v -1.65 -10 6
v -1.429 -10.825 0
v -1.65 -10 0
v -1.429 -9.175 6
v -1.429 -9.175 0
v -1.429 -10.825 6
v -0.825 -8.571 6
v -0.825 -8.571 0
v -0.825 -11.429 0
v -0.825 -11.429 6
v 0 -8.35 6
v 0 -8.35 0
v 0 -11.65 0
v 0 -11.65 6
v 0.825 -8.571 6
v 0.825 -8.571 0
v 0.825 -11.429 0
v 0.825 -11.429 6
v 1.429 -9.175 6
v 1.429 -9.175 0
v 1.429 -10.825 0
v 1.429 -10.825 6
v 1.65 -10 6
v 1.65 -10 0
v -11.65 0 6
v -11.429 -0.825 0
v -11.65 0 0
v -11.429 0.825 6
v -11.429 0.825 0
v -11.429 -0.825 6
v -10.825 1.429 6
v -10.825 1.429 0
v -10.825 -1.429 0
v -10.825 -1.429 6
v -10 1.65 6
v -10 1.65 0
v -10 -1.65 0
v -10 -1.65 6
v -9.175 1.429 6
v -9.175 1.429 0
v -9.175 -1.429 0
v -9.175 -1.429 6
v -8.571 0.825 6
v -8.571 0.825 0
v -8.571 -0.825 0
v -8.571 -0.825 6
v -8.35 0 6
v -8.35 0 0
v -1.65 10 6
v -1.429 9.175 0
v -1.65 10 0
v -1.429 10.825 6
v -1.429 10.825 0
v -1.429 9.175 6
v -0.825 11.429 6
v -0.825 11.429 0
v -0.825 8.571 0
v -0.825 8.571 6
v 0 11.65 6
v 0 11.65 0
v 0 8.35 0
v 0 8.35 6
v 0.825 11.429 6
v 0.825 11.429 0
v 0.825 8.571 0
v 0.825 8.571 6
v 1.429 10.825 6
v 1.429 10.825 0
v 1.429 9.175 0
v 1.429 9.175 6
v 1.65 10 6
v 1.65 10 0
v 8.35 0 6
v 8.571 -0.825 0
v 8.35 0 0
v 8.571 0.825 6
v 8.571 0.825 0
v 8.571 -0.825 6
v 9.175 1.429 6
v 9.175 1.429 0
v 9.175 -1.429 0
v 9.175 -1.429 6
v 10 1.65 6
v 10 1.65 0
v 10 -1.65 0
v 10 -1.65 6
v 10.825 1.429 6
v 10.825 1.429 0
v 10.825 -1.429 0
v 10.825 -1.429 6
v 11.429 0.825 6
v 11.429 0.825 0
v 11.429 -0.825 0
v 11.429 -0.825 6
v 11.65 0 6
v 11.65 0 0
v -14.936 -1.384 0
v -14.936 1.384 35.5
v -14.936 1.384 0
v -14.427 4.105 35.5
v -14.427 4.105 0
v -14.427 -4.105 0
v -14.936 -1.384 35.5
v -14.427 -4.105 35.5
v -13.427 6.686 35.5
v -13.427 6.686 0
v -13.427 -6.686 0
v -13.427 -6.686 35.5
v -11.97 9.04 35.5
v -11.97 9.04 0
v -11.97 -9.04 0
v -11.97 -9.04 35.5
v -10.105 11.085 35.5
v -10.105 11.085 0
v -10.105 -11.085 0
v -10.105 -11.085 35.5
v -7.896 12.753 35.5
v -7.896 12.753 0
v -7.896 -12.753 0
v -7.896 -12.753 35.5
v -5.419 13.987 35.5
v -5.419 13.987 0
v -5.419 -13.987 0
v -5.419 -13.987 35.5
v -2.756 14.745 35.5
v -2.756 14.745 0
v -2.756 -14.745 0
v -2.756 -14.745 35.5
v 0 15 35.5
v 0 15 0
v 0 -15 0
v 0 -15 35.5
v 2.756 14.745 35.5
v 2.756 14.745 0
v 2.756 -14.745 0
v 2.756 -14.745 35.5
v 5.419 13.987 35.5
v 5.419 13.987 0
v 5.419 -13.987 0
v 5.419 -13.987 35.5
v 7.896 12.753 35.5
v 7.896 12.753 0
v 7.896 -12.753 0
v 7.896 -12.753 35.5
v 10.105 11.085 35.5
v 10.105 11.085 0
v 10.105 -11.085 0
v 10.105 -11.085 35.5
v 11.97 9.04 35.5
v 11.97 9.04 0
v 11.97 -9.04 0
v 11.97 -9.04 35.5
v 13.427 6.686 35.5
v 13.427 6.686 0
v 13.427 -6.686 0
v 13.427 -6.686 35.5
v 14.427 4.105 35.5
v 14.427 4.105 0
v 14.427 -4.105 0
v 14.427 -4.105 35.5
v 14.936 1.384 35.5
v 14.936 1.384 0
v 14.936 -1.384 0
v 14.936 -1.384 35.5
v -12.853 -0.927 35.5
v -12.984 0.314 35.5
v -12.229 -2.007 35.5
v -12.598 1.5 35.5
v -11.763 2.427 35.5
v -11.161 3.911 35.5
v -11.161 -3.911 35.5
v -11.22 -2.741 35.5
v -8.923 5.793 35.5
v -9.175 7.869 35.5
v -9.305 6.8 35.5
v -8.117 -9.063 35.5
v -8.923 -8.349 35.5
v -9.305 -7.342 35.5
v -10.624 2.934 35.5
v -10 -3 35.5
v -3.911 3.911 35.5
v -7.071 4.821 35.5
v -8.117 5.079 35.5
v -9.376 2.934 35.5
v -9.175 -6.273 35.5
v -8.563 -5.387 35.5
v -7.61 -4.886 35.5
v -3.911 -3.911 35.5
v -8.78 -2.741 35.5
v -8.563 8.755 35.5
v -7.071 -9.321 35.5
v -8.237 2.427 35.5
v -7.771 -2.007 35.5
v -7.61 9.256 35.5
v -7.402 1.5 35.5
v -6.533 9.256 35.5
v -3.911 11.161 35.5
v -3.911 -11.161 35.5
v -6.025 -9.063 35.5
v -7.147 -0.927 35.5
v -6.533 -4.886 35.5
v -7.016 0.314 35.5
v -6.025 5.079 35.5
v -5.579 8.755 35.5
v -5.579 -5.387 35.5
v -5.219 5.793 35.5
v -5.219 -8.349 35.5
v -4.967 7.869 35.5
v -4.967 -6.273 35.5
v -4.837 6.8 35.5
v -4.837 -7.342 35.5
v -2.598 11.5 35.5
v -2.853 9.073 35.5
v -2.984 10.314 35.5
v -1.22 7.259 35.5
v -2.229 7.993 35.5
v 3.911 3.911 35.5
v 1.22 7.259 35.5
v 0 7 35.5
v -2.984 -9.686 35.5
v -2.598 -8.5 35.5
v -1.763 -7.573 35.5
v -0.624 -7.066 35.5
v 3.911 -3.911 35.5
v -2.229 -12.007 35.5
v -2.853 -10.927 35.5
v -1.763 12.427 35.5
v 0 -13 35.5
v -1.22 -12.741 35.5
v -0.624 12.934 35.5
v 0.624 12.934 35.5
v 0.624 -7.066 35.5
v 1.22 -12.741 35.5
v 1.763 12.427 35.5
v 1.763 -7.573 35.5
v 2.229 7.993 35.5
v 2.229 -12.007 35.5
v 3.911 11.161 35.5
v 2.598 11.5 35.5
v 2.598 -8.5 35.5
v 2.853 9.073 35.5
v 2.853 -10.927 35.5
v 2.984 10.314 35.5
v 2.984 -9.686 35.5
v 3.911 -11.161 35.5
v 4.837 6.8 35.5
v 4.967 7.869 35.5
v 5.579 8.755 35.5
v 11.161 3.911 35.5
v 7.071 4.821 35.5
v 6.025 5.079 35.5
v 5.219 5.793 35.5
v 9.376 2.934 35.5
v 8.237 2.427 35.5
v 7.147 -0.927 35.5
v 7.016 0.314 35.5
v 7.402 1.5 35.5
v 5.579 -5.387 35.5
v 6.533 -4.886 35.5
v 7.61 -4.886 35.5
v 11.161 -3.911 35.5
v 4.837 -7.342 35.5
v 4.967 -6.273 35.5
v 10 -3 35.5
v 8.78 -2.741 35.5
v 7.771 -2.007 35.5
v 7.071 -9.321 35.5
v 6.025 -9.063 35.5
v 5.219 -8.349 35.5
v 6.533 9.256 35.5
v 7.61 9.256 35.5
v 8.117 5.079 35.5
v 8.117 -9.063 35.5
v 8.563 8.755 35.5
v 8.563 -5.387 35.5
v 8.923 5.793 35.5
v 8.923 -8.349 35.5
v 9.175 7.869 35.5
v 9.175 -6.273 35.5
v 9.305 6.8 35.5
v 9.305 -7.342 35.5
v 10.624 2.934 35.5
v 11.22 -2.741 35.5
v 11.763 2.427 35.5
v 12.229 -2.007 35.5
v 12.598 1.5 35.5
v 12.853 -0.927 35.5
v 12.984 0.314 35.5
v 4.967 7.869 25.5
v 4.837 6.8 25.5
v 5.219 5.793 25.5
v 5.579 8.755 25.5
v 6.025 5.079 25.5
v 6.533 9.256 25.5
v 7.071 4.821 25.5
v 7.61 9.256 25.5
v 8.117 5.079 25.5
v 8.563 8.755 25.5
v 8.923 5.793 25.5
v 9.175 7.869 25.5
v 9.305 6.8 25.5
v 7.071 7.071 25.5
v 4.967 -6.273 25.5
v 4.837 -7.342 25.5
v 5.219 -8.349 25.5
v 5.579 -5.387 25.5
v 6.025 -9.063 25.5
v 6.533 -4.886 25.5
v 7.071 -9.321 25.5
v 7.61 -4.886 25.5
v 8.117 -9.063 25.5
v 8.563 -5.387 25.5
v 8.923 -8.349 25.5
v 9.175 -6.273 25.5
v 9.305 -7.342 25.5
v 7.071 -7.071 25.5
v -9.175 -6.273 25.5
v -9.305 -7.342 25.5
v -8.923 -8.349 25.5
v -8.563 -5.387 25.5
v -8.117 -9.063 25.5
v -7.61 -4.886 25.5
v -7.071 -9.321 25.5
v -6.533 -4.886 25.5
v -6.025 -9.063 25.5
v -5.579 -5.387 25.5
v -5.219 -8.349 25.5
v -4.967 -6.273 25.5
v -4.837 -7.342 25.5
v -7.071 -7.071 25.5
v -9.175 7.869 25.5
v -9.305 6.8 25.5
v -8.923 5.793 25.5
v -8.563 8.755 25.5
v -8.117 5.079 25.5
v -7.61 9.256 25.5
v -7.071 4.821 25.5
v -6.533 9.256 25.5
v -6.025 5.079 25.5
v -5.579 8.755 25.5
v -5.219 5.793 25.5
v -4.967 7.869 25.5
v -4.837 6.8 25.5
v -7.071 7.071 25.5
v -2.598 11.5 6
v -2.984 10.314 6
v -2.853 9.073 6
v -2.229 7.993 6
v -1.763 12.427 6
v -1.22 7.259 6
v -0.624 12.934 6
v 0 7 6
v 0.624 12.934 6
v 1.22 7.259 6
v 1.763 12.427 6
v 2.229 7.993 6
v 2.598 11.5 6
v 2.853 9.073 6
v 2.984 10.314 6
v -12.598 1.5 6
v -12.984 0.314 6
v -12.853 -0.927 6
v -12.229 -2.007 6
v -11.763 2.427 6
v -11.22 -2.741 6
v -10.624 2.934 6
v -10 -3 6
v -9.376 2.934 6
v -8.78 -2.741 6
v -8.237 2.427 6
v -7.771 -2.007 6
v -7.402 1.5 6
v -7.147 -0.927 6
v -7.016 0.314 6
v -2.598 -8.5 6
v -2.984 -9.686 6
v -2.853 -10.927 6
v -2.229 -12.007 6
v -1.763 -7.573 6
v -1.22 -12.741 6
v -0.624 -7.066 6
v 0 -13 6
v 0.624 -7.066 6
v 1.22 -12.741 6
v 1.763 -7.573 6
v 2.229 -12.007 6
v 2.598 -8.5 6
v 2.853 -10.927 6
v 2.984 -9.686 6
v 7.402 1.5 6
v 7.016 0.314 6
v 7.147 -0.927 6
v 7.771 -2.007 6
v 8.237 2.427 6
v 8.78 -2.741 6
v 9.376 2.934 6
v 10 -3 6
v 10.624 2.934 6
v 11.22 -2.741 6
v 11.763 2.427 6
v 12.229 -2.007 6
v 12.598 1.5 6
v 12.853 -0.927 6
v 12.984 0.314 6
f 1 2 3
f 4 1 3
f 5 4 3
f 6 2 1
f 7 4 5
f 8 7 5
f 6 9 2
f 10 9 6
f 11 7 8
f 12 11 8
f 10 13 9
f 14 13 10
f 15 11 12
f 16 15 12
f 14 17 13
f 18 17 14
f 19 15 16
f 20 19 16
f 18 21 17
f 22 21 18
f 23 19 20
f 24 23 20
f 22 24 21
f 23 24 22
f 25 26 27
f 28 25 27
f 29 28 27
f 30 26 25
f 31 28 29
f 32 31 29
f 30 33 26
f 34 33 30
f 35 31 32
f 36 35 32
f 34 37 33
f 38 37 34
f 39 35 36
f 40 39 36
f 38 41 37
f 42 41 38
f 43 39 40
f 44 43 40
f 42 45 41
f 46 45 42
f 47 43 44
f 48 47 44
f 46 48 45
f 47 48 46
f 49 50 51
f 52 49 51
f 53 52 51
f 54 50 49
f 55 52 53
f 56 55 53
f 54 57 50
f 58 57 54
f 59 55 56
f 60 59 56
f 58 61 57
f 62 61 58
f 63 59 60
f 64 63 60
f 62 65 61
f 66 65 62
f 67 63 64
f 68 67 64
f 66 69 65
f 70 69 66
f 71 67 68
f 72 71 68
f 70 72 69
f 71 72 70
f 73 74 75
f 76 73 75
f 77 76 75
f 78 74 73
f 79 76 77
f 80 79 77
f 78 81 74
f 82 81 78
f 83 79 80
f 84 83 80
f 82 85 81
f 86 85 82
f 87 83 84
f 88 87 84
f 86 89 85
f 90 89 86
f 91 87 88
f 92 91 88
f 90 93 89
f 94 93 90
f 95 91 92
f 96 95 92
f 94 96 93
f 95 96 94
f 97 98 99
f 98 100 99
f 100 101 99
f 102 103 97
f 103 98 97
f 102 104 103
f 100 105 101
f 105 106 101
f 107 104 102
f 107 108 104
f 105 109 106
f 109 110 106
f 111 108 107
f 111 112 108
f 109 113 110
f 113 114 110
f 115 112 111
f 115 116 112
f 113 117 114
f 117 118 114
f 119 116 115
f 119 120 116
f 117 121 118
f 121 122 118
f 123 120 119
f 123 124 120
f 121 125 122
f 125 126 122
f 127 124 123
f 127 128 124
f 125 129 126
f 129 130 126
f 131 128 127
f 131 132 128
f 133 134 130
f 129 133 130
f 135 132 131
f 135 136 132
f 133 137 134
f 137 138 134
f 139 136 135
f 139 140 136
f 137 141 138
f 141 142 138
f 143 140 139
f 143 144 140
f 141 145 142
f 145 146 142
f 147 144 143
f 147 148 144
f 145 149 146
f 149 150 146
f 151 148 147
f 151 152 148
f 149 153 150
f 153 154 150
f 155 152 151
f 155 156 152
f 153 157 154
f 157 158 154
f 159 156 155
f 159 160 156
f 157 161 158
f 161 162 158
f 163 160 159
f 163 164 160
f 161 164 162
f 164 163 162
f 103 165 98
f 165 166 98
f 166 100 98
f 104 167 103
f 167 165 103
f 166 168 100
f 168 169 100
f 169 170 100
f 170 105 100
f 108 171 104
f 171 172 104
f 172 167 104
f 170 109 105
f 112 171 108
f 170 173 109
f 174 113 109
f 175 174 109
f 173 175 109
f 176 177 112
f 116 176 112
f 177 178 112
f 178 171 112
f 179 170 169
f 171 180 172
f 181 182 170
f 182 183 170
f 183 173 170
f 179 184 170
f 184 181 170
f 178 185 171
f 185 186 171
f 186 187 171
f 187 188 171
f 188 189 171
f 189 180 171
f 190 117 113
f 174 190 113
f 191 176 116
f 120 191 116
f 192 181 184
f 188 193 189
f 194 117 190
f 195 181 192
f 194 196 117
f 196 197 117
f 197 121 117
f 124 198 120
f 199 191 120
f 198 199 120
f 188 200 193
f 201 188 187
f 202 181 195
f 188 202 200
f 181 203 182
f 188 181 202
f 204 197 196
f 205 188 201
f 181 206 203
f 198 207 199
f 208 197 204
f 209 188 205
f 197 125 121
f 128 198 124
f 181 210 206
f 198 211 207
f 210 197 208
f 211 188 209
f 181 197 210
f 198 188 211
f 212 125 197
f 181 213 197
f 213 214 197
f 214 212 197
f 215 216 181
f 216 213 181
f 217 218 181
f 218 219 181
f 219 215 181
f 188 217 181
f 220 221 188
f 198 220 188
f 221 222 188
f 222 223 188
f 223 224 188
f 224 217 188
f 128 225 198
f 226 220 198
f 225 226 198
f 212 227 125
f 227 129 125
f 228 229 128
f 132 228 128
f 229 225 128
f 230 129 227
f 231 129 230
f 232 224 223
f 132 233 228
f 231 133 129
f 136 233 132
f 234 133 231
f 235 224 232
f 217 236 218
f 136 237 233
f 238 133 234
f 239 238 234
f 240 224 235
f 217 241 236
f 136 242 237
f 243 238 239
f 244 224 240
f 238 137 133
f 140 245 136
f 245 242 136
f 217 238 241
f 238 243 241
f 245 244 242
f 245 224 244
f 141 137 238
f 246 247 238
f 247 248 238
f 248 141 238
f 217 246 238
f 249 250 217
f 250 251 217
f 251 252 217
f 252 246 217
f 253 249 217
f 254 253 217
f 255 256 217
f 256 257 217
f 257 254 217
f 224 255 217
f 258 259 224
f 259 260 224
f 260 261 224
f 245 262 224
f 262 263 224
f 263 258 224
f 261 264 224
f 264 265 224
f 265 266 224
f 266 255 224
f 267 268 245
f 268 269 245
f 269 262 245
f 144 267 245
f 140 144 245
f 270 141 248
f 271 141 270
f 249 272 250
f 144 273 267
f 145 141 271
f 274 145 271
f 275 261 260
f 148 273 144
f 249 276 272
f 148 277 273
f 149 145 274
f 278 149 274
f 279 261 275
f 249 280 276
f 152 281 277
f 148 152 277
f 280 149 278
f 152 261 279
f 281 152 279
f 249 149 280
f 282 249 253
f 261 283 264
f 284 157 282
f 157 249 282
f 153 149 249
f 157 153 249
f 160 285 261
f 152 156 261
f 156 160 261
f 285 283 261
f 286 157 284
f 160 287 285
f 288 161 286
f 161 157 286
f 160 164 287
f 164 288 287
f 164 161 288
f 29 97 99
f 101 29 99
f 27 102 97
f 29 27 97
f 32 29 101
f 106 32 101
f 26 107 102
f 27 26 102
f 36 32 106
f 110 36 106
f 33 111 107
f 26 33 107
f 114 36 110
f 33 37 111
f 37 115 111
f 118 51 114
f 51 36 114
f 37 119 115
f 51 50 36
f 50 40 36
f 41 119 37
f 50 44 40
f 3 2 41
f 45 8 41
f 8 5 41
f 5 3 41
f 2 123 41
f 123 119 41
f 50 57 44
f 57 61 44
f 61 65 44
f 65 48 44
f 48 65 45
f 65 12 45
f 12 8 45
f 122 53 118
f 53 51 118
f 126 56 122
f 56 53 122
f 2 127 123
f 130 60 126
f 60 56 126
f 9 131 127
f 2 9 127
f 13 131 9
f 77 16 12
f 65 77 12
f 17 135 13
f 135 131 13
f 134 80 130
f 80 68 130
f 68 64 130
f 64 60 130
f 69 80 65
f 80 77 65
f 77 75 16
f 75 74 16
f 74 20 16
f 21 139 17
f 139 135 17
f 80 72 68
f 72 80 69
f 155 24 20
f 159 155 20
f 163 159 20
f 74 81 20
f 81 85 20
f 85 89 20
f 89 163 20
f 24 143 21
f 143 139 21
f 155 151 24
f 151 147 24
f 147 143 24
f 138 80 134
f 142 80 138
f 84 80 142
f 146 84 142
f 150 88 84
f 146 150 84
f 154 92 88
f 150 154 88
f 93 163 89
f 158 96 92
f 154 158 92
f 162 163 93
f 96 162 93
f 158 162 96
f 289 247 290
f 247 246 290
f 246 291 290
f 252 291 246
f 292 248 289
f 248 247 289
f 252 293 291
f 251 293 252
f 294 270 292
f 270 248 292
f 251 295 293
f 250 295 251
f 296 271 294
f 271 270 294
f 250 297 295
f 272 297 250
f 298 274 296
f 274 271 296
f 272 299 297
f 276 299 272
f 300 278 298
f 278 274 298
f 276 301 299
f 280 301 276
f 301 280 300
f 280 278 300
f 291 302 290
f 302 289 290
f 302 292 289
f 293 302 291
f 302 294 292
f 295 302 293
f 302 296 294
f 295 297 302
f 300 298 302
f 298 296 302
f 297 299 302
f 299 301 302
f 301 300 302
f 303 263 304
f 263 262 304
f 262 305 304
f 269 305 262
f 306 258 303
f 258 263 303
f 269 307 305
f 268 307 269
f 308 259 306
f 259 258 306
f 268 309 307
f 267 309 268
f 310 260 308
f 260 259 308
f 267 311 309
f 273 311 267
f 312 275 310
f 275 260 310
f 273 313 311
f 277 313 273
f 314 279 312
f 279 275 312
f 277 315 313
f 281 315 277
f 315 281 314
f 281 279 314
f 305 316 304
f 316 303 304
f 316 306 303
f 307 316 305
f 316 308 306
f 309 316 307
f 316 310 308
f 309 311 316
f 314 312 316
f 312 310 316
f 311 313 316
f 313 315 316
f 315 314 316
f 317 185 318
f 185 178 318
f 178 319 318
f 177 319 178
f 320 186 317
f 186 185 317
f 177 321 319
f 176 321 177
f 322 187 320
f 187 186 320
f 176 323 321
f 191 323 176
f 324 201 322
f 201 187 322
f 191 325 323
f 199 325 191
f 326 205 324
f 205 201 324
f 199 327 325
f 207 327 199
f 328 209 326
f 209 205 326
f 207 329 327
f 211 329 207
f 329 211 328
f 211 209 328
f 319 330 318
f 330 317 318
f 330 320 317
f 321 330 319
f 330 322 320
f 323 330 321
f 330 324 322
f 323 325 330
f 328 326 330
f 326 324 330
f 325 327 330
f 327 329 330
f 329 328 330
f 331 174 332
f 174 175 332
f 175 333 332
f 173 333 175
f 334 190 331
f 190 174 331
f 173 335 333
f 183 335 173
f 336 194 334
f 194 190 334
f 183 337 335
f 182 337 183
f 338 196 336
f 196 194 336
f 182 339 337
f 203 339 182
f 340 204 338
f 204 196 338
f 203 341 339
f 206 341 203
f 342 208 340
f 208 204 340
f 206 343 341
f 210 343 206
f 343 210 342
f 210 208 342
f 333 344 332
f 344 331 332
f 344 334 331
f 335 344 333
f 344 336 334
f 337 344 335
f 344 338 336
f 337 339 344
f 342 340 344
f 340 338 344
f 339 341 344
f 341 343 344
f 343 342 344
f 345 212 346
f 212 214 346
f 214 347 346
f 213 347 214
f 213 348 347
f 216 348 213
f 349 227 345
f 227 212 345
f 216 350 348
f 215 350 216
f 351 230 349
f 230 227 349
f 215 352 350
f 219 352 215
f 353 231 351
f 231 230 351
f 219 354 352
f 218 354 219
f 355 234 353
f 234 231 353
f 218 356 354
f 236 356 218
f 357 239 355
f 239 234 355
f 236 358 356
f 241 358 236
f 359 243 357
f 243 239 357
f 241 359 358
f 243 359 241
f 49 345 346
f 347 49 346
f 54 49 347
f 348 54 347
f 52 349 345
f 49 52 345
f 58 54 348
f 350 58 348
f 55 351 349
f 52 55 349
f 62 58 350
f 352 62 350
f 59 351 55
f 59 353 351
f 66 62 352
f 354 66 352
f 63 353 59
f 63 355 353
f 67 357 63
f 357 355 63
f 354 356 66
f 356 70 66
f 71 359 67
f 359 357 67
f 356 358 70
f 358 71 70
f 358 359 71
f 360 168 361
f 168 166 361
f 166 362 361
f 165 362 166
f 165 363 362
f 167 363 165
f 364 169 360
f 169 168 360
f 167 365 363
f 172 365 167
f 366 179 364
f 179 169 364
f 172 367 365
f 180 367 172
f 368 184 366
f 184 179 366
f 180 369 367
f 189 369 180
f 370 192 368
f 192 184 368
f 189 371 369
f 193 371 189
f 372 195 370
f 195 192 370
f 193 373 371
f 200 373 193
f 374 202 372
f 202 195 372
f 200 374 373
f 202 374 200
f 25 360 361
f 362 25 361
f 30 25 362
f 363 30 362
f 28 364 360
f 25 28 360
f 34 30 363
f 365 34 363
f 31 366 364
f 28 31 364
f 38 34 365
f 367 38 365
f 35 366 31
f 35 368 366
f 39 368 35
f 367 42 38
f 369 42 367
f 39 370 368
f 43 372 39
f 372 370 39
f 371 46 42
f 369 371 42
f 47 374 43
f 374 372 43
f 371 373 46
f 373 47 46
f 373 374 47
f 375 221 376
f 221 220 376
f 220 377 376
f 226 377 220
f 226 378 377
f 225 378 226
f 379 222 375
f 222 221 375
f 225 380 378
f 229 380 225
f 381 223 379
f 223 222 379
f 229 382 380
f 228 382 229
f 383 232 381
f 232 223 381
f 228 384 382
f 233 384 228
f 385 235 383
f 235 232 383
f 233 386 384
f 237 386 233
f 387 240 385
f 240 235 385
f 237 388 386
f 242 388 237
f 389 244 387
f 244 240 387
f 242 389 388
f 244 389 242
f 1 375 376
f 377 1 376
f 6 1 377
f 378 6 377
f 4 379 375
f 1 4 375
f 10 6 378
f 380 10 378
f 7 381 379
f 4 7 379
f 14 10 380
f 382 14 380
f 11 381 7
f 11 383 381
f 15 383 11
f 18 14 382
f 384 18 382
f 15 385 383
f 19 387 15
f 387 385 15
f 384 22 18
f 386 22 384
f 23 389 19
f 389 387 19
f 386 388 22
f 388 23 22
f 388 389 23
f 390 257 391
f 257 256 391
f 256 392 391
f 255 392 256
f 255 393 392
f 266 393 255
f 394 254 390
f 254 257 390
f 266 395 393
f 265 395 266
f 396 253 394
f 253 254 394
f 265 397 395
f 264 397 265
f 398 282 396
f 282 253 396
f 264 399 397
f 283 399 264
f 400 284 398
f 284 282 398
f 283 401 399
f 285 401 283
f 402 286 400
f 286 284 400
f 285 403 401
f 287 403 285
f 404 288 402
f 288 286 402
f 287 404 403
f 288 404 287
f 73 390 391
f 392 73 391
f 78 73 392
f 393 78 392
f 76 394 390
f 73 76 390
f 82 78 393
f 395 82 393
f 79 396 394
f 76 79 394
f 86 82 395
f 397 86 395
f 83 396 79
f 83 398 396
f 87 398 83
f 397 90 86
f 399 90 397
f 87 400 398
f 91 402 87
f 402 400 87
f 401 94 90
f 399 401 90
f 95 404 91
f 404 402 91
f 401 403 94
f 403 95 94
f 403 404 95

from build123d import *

# Parameters (mm, degrees)
SKIZZE1_R                       = 15
SKIZZE1_R_2                     = 1.65
AUFSATZ_LINEAR_AUSTRAGEN1_DEPTH = 35.5
SKIZZE4_R                       = 2.25
SCHNITT_LINEAR_AUSTRAGEN2_DEPTH = 10
SKIZZE3_R                       = 3
SCHNITT_LINEAR_AUSTRAGEN3_DEPTH = 29.5


with BuildPart() as part:
    # Skizze1 → Aufsatz-Linear austragen1 (new body)
    with BuildSketch(Plane.XY):
        Circle(SKIZZE1_R)
        with Locations((0, -10)):
            Circle(SKIZZE1_R_2, mode=Mode.SUBTRACT)
        with Locations((-10, 0)):
            Circle(SKIZZE1_R_2, mode=Mode.SUBTRACT)
        with Locations((0, 10)):
            Circle(SKIZZE1_R_2, mode=Mode.SUBTRACT)
        with Locations((10, 0)):
            Circle(SKIZZE1_R_2, mode=Mode.SUBTRACT)
    extrude(amount=AUFSATZ_LINEAR_AUSTRAGEN1_DEPTH)

    # Skizze4 → Schnitt-Linear austragen2 (cut)
    with BuildSketch(Plane.XY.offset(35.5)):
        with Locations((7.071067812, 7.071067812)):
            Circle(SKIZZE4_R)
        with Locations((7.071067812, -7.071067812)):
            Circle(SKIZZE4_R)
        with Locations((-7.071067812, -7.071067812)):
            Circle(SKIZZE4_R)
        with Locations((-7.071067812, 7.071067812)):
            Circle(SKIZZE4_R)
    extrude(amount=-SCHNITT_LINEAR_AUSTRAGEN2_DEPTH, mode=Mode.SUBTRACT)

    # Skizze3 → Schnitt-Linear austragen3 (cut)
    with BuildSketch(Plane.XY.offset(35.5)):
        with Locations((0, 10)):
            Circle(SKIZZE3_R)
        with Locations((10, 0)):
            Circle(SKIZZE3_R)
        with Locations((0, -10)):
            Circle(SKIZZE3_R)
        with Locations((-10, 0)):
            Circle(SKIZZE3_R)
    extrude(amount=-SCHNITT_LINEAR_AUSTRAGEN3_DEPTH, mode=Mode.SUBTRACT)


solid = part.part
